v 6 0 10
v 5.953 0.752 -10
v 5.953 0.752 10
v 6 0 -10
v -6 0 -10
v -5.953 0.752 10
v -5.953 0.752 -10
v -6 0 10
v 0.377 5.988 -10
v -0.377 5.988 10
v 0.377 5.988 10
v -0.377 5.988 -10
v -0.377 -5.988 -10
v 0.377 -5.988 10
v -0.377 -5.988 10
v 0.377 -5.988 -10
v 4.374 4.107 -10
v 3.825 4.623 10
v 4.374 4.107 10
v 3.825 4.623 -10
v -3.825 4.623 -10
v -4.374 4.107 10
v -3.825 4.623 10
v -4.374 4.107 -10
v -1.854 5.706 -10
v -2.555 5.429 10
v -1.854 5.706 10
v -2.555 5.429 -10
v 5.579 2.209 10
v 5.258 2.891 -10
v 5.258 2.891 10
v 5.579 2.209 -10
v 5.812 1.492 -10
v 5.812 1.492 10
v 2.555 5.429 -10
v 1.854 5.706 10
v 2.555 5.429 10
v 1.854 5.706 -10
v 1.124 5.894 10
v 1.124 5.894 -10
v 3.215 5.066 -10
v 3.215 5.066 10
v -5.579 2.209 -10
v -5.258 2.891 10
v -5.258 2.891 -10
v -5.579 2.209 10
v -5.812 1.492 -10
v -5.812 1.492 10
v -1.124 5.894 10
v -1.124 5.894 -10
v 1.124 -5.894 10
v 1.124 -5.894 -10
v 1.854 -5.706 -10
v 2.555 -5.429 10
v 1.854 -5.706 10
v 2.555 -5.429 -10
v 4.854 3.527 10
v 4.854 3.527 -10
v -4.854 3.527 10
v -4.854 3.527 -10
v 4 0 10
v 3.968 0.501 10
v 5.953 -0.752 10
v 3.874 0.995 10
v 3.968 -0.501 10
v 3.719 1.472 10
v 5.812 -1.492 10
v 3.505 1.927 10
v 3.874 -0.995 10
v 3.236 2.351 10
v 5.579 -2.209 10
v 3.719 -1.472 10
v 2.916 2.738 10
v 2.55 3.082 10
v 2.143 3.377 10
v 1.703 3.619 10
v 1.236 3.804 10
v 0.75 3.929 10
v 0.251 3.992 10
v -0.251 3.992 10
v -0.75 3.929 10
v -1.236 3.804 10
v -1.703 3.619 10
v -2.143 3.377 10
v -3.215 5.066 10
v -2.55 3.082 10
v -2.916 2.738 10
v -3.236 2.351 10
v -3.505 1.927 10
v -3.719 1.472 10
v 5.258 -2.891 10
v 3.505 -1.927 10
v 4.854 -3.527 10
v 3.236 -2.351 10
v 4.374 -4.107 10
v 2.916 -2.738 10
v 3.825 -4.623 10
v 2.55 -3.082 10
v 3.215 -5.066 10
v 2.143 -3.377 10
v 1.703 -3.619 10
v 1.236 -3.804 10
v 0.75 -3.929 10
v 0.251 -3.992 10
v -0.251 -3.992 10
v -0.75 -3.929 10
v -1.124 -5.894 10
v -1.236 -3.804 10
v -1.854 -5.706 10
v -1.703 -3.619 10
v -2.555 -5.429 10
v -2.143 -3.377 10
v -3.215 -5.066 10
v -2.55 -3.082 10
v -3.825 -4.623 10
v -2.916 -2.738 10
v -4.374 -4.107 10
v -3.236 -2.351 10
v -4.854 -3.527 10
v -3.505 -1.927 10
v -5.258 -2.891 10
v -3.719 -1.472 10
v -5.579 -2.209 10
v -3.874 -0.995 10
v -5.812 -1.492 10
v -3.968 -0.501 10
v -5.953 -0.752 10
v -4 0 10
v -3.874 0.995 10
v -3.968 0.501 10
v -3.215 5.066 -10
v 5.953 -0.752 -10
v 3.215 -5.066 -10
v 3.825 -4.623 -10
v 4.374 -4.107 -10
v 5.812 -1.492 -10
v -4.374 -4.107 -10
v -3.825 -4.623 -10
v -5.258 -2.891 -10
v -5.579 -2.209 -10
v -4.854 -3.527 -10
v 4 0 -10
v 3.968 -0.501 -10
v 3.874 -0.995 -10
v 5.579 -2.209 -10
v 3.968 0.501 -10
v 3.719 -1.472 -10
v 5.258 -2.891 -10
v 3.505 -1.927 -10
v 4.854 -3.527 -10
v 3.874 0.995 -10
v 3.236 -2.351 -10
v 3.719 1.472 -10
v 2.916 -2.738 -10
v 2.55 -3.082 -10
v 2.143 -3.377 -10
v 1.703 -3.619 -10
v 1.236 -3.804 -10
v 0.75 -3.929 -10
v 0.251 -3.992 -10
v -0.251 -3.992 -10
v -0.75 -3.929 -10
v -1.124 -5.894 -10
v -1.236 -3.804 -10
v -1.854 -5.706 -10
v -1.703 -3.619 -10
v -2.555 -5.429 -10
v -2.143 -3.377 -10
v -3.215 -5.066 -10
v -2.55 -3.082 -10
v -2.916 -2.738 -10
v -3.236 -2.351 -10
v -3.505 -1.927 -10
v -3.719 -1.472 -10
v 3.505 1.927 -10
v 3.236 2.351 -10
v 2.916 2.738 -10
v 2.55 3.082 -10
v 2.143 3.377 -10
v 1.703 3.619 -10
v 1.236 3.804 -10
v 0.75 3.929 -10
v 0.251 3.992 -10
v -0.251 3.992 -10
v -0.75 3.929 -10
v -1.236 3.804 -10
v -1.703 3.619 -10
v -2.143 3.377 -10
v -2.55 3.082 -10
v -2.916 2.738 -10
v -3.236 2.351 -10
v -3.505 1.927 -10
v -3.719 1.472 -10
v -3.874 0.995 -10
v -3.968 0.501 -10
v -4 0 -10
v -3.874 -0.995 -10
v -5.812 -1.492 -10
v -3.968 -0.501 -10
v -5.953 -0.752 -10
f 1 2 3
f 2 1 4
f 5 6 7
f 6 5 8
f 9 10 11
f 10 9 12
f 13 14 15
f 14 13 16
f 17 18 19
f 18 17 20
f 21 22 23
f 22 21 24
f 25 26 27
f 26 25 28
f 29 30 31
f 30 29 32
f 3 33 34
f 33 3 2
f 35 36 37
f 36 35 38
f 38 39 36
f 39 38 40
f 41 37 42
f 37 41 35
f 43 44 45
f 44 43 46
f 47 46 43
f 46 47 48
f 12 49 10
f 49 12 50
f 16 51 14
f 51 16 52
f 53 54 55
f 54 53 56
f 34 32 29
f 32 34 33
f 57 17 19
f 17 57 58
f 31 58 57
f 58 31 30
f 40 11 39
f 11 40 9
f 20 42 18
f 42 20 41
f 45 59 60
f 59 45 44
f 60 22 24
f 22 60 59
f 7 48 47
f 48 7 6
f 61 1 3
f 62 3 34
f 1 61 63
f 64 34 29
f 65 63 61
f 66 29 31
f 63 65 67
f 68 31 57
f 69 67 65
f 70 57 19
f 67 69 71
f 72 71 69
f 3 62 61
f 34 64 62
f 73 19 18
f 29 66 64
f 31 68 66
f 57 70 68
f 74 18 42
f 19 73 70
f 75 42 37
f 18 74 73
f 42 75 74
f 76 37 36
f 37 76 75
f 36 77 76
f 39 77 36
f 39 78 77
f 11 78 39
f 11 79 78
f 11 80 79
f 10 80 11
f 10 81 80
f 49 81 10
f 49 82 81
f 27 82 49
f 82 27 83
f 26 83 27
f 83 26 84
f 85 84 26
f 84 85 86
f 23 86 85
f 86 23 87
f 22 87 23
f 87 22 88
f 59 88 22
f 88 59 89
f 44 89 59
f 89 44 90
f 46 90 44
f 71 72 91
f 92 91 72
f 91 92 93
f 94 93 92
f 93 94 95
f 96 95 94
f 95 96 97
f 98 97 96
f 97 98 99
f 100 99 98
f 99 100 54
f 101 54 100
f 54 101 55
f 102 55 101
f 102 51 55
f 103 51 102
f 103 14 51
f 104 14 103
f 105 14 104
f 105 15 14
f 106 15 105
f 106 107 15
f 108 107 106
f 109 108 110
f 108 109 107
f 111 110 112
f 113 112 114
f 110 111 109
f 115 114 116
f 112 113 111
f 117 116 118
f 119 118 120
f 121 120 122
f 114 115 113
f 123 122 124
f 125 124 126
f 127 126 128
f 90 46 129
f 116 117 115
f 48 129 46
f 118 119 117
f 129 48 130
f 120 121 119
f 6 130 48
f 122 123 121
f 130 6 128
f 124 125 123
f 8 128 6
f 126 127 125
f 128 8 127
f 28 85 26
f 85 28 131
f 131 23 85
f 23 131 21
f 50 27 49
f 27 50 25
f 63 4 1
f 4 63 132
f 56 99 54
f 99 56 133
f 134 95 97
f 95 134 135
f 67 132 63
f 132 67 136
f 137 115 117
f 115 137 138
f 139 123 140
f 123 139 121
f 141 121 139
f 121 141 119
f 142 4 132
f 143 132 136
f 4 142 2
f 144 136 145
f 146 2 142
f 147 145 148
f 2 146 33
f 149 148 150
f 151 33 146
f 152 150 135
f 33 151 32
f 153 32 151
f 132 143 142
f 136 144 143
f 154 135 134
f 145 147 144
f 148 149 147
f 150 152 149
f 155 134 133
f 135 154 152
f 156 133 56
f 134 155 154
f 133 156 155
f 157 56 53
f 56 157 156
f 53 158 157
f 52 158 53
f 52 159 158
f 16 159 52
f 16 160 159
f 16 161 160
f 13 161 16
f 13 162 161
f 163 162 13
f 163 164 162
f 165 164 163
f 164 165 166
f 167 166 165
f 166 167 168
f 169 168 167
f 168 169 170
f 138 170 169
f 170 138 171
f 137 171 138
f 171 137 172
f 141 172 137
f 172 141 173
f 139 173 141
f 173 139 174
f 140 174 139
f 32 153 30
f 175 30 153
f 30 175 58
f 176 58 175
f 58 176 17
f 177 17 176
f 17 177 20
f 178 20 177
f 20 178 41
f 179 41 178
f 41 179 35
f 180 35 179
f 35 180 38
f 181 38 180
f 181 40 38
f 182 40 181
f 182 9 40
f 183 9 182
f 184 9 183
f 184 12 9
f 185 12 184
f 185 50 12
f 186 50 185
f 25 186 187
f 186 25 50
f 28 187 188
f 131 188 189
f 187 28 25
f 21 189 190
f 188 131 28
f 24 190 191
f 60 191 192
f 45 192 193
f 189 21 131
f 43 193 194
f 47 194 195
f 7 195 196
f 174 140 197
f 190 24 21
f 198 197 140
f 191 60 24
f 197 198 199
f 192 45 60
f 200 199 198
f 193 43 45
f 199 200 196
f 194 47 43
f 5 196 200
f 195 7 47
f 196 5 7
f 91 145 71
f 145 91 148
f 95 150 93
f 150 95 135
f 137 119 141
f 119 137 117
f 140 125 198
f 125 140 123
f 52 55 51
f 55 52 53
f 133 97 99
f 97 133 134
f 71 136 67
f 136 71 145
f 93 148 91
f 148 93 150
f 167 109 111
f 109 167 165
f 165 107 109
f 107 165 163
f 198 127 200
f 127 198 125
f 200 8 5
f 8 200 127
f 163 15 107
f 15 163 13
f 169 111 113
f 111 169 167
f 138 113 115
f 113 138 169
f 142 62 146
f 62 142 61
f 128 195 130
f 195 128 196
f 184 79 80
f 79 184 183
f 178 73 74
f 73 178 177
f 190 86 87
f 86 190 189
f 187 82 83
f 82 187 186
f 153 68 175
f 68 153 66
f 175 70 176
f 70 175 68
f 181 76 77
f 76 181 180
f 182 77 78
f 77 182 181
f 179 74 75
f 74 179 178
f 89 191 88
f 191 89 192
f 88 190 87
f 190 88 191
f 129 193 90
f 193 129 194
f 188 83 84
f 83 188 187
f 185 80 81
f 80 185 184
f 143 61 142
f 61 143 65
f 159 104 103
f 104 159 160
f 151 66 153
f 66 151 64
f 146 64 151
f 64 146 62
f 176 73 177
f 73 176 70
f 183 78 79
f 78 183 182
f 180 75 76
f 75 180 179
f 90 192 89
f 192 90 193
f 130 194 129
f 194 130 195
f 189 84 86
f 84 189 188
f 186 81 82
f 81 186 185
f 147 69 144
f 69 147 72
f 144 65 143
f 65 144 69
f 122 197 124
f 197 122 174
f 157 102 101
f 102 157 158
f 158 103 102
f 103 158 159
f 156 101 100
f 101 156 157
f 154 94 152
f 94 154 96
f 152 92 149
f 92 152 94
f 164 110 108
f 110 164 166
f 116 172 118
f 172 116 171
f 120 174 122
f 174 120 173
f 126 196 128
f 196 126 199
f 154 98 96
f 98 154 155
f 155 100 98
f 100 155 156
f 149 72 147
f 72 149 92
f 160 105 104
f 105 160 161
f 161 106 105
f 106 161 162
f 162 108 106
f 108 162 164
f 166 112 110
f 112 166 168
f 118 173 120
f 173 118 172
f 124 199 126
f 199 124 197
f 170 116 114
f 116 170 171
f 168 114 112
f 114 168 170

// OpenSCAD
$fn = 50;


difference() {
	union() {
		translate(v = [0, 0, -10.0000000000]) {
			cylinder(h = 20, r = 6.0000000000);
		}
	}
	union() {
		translate(v = [0, 0, -100.0000000000]) {
			cylinder(h = 200, r = 4);
		}
	}
}
